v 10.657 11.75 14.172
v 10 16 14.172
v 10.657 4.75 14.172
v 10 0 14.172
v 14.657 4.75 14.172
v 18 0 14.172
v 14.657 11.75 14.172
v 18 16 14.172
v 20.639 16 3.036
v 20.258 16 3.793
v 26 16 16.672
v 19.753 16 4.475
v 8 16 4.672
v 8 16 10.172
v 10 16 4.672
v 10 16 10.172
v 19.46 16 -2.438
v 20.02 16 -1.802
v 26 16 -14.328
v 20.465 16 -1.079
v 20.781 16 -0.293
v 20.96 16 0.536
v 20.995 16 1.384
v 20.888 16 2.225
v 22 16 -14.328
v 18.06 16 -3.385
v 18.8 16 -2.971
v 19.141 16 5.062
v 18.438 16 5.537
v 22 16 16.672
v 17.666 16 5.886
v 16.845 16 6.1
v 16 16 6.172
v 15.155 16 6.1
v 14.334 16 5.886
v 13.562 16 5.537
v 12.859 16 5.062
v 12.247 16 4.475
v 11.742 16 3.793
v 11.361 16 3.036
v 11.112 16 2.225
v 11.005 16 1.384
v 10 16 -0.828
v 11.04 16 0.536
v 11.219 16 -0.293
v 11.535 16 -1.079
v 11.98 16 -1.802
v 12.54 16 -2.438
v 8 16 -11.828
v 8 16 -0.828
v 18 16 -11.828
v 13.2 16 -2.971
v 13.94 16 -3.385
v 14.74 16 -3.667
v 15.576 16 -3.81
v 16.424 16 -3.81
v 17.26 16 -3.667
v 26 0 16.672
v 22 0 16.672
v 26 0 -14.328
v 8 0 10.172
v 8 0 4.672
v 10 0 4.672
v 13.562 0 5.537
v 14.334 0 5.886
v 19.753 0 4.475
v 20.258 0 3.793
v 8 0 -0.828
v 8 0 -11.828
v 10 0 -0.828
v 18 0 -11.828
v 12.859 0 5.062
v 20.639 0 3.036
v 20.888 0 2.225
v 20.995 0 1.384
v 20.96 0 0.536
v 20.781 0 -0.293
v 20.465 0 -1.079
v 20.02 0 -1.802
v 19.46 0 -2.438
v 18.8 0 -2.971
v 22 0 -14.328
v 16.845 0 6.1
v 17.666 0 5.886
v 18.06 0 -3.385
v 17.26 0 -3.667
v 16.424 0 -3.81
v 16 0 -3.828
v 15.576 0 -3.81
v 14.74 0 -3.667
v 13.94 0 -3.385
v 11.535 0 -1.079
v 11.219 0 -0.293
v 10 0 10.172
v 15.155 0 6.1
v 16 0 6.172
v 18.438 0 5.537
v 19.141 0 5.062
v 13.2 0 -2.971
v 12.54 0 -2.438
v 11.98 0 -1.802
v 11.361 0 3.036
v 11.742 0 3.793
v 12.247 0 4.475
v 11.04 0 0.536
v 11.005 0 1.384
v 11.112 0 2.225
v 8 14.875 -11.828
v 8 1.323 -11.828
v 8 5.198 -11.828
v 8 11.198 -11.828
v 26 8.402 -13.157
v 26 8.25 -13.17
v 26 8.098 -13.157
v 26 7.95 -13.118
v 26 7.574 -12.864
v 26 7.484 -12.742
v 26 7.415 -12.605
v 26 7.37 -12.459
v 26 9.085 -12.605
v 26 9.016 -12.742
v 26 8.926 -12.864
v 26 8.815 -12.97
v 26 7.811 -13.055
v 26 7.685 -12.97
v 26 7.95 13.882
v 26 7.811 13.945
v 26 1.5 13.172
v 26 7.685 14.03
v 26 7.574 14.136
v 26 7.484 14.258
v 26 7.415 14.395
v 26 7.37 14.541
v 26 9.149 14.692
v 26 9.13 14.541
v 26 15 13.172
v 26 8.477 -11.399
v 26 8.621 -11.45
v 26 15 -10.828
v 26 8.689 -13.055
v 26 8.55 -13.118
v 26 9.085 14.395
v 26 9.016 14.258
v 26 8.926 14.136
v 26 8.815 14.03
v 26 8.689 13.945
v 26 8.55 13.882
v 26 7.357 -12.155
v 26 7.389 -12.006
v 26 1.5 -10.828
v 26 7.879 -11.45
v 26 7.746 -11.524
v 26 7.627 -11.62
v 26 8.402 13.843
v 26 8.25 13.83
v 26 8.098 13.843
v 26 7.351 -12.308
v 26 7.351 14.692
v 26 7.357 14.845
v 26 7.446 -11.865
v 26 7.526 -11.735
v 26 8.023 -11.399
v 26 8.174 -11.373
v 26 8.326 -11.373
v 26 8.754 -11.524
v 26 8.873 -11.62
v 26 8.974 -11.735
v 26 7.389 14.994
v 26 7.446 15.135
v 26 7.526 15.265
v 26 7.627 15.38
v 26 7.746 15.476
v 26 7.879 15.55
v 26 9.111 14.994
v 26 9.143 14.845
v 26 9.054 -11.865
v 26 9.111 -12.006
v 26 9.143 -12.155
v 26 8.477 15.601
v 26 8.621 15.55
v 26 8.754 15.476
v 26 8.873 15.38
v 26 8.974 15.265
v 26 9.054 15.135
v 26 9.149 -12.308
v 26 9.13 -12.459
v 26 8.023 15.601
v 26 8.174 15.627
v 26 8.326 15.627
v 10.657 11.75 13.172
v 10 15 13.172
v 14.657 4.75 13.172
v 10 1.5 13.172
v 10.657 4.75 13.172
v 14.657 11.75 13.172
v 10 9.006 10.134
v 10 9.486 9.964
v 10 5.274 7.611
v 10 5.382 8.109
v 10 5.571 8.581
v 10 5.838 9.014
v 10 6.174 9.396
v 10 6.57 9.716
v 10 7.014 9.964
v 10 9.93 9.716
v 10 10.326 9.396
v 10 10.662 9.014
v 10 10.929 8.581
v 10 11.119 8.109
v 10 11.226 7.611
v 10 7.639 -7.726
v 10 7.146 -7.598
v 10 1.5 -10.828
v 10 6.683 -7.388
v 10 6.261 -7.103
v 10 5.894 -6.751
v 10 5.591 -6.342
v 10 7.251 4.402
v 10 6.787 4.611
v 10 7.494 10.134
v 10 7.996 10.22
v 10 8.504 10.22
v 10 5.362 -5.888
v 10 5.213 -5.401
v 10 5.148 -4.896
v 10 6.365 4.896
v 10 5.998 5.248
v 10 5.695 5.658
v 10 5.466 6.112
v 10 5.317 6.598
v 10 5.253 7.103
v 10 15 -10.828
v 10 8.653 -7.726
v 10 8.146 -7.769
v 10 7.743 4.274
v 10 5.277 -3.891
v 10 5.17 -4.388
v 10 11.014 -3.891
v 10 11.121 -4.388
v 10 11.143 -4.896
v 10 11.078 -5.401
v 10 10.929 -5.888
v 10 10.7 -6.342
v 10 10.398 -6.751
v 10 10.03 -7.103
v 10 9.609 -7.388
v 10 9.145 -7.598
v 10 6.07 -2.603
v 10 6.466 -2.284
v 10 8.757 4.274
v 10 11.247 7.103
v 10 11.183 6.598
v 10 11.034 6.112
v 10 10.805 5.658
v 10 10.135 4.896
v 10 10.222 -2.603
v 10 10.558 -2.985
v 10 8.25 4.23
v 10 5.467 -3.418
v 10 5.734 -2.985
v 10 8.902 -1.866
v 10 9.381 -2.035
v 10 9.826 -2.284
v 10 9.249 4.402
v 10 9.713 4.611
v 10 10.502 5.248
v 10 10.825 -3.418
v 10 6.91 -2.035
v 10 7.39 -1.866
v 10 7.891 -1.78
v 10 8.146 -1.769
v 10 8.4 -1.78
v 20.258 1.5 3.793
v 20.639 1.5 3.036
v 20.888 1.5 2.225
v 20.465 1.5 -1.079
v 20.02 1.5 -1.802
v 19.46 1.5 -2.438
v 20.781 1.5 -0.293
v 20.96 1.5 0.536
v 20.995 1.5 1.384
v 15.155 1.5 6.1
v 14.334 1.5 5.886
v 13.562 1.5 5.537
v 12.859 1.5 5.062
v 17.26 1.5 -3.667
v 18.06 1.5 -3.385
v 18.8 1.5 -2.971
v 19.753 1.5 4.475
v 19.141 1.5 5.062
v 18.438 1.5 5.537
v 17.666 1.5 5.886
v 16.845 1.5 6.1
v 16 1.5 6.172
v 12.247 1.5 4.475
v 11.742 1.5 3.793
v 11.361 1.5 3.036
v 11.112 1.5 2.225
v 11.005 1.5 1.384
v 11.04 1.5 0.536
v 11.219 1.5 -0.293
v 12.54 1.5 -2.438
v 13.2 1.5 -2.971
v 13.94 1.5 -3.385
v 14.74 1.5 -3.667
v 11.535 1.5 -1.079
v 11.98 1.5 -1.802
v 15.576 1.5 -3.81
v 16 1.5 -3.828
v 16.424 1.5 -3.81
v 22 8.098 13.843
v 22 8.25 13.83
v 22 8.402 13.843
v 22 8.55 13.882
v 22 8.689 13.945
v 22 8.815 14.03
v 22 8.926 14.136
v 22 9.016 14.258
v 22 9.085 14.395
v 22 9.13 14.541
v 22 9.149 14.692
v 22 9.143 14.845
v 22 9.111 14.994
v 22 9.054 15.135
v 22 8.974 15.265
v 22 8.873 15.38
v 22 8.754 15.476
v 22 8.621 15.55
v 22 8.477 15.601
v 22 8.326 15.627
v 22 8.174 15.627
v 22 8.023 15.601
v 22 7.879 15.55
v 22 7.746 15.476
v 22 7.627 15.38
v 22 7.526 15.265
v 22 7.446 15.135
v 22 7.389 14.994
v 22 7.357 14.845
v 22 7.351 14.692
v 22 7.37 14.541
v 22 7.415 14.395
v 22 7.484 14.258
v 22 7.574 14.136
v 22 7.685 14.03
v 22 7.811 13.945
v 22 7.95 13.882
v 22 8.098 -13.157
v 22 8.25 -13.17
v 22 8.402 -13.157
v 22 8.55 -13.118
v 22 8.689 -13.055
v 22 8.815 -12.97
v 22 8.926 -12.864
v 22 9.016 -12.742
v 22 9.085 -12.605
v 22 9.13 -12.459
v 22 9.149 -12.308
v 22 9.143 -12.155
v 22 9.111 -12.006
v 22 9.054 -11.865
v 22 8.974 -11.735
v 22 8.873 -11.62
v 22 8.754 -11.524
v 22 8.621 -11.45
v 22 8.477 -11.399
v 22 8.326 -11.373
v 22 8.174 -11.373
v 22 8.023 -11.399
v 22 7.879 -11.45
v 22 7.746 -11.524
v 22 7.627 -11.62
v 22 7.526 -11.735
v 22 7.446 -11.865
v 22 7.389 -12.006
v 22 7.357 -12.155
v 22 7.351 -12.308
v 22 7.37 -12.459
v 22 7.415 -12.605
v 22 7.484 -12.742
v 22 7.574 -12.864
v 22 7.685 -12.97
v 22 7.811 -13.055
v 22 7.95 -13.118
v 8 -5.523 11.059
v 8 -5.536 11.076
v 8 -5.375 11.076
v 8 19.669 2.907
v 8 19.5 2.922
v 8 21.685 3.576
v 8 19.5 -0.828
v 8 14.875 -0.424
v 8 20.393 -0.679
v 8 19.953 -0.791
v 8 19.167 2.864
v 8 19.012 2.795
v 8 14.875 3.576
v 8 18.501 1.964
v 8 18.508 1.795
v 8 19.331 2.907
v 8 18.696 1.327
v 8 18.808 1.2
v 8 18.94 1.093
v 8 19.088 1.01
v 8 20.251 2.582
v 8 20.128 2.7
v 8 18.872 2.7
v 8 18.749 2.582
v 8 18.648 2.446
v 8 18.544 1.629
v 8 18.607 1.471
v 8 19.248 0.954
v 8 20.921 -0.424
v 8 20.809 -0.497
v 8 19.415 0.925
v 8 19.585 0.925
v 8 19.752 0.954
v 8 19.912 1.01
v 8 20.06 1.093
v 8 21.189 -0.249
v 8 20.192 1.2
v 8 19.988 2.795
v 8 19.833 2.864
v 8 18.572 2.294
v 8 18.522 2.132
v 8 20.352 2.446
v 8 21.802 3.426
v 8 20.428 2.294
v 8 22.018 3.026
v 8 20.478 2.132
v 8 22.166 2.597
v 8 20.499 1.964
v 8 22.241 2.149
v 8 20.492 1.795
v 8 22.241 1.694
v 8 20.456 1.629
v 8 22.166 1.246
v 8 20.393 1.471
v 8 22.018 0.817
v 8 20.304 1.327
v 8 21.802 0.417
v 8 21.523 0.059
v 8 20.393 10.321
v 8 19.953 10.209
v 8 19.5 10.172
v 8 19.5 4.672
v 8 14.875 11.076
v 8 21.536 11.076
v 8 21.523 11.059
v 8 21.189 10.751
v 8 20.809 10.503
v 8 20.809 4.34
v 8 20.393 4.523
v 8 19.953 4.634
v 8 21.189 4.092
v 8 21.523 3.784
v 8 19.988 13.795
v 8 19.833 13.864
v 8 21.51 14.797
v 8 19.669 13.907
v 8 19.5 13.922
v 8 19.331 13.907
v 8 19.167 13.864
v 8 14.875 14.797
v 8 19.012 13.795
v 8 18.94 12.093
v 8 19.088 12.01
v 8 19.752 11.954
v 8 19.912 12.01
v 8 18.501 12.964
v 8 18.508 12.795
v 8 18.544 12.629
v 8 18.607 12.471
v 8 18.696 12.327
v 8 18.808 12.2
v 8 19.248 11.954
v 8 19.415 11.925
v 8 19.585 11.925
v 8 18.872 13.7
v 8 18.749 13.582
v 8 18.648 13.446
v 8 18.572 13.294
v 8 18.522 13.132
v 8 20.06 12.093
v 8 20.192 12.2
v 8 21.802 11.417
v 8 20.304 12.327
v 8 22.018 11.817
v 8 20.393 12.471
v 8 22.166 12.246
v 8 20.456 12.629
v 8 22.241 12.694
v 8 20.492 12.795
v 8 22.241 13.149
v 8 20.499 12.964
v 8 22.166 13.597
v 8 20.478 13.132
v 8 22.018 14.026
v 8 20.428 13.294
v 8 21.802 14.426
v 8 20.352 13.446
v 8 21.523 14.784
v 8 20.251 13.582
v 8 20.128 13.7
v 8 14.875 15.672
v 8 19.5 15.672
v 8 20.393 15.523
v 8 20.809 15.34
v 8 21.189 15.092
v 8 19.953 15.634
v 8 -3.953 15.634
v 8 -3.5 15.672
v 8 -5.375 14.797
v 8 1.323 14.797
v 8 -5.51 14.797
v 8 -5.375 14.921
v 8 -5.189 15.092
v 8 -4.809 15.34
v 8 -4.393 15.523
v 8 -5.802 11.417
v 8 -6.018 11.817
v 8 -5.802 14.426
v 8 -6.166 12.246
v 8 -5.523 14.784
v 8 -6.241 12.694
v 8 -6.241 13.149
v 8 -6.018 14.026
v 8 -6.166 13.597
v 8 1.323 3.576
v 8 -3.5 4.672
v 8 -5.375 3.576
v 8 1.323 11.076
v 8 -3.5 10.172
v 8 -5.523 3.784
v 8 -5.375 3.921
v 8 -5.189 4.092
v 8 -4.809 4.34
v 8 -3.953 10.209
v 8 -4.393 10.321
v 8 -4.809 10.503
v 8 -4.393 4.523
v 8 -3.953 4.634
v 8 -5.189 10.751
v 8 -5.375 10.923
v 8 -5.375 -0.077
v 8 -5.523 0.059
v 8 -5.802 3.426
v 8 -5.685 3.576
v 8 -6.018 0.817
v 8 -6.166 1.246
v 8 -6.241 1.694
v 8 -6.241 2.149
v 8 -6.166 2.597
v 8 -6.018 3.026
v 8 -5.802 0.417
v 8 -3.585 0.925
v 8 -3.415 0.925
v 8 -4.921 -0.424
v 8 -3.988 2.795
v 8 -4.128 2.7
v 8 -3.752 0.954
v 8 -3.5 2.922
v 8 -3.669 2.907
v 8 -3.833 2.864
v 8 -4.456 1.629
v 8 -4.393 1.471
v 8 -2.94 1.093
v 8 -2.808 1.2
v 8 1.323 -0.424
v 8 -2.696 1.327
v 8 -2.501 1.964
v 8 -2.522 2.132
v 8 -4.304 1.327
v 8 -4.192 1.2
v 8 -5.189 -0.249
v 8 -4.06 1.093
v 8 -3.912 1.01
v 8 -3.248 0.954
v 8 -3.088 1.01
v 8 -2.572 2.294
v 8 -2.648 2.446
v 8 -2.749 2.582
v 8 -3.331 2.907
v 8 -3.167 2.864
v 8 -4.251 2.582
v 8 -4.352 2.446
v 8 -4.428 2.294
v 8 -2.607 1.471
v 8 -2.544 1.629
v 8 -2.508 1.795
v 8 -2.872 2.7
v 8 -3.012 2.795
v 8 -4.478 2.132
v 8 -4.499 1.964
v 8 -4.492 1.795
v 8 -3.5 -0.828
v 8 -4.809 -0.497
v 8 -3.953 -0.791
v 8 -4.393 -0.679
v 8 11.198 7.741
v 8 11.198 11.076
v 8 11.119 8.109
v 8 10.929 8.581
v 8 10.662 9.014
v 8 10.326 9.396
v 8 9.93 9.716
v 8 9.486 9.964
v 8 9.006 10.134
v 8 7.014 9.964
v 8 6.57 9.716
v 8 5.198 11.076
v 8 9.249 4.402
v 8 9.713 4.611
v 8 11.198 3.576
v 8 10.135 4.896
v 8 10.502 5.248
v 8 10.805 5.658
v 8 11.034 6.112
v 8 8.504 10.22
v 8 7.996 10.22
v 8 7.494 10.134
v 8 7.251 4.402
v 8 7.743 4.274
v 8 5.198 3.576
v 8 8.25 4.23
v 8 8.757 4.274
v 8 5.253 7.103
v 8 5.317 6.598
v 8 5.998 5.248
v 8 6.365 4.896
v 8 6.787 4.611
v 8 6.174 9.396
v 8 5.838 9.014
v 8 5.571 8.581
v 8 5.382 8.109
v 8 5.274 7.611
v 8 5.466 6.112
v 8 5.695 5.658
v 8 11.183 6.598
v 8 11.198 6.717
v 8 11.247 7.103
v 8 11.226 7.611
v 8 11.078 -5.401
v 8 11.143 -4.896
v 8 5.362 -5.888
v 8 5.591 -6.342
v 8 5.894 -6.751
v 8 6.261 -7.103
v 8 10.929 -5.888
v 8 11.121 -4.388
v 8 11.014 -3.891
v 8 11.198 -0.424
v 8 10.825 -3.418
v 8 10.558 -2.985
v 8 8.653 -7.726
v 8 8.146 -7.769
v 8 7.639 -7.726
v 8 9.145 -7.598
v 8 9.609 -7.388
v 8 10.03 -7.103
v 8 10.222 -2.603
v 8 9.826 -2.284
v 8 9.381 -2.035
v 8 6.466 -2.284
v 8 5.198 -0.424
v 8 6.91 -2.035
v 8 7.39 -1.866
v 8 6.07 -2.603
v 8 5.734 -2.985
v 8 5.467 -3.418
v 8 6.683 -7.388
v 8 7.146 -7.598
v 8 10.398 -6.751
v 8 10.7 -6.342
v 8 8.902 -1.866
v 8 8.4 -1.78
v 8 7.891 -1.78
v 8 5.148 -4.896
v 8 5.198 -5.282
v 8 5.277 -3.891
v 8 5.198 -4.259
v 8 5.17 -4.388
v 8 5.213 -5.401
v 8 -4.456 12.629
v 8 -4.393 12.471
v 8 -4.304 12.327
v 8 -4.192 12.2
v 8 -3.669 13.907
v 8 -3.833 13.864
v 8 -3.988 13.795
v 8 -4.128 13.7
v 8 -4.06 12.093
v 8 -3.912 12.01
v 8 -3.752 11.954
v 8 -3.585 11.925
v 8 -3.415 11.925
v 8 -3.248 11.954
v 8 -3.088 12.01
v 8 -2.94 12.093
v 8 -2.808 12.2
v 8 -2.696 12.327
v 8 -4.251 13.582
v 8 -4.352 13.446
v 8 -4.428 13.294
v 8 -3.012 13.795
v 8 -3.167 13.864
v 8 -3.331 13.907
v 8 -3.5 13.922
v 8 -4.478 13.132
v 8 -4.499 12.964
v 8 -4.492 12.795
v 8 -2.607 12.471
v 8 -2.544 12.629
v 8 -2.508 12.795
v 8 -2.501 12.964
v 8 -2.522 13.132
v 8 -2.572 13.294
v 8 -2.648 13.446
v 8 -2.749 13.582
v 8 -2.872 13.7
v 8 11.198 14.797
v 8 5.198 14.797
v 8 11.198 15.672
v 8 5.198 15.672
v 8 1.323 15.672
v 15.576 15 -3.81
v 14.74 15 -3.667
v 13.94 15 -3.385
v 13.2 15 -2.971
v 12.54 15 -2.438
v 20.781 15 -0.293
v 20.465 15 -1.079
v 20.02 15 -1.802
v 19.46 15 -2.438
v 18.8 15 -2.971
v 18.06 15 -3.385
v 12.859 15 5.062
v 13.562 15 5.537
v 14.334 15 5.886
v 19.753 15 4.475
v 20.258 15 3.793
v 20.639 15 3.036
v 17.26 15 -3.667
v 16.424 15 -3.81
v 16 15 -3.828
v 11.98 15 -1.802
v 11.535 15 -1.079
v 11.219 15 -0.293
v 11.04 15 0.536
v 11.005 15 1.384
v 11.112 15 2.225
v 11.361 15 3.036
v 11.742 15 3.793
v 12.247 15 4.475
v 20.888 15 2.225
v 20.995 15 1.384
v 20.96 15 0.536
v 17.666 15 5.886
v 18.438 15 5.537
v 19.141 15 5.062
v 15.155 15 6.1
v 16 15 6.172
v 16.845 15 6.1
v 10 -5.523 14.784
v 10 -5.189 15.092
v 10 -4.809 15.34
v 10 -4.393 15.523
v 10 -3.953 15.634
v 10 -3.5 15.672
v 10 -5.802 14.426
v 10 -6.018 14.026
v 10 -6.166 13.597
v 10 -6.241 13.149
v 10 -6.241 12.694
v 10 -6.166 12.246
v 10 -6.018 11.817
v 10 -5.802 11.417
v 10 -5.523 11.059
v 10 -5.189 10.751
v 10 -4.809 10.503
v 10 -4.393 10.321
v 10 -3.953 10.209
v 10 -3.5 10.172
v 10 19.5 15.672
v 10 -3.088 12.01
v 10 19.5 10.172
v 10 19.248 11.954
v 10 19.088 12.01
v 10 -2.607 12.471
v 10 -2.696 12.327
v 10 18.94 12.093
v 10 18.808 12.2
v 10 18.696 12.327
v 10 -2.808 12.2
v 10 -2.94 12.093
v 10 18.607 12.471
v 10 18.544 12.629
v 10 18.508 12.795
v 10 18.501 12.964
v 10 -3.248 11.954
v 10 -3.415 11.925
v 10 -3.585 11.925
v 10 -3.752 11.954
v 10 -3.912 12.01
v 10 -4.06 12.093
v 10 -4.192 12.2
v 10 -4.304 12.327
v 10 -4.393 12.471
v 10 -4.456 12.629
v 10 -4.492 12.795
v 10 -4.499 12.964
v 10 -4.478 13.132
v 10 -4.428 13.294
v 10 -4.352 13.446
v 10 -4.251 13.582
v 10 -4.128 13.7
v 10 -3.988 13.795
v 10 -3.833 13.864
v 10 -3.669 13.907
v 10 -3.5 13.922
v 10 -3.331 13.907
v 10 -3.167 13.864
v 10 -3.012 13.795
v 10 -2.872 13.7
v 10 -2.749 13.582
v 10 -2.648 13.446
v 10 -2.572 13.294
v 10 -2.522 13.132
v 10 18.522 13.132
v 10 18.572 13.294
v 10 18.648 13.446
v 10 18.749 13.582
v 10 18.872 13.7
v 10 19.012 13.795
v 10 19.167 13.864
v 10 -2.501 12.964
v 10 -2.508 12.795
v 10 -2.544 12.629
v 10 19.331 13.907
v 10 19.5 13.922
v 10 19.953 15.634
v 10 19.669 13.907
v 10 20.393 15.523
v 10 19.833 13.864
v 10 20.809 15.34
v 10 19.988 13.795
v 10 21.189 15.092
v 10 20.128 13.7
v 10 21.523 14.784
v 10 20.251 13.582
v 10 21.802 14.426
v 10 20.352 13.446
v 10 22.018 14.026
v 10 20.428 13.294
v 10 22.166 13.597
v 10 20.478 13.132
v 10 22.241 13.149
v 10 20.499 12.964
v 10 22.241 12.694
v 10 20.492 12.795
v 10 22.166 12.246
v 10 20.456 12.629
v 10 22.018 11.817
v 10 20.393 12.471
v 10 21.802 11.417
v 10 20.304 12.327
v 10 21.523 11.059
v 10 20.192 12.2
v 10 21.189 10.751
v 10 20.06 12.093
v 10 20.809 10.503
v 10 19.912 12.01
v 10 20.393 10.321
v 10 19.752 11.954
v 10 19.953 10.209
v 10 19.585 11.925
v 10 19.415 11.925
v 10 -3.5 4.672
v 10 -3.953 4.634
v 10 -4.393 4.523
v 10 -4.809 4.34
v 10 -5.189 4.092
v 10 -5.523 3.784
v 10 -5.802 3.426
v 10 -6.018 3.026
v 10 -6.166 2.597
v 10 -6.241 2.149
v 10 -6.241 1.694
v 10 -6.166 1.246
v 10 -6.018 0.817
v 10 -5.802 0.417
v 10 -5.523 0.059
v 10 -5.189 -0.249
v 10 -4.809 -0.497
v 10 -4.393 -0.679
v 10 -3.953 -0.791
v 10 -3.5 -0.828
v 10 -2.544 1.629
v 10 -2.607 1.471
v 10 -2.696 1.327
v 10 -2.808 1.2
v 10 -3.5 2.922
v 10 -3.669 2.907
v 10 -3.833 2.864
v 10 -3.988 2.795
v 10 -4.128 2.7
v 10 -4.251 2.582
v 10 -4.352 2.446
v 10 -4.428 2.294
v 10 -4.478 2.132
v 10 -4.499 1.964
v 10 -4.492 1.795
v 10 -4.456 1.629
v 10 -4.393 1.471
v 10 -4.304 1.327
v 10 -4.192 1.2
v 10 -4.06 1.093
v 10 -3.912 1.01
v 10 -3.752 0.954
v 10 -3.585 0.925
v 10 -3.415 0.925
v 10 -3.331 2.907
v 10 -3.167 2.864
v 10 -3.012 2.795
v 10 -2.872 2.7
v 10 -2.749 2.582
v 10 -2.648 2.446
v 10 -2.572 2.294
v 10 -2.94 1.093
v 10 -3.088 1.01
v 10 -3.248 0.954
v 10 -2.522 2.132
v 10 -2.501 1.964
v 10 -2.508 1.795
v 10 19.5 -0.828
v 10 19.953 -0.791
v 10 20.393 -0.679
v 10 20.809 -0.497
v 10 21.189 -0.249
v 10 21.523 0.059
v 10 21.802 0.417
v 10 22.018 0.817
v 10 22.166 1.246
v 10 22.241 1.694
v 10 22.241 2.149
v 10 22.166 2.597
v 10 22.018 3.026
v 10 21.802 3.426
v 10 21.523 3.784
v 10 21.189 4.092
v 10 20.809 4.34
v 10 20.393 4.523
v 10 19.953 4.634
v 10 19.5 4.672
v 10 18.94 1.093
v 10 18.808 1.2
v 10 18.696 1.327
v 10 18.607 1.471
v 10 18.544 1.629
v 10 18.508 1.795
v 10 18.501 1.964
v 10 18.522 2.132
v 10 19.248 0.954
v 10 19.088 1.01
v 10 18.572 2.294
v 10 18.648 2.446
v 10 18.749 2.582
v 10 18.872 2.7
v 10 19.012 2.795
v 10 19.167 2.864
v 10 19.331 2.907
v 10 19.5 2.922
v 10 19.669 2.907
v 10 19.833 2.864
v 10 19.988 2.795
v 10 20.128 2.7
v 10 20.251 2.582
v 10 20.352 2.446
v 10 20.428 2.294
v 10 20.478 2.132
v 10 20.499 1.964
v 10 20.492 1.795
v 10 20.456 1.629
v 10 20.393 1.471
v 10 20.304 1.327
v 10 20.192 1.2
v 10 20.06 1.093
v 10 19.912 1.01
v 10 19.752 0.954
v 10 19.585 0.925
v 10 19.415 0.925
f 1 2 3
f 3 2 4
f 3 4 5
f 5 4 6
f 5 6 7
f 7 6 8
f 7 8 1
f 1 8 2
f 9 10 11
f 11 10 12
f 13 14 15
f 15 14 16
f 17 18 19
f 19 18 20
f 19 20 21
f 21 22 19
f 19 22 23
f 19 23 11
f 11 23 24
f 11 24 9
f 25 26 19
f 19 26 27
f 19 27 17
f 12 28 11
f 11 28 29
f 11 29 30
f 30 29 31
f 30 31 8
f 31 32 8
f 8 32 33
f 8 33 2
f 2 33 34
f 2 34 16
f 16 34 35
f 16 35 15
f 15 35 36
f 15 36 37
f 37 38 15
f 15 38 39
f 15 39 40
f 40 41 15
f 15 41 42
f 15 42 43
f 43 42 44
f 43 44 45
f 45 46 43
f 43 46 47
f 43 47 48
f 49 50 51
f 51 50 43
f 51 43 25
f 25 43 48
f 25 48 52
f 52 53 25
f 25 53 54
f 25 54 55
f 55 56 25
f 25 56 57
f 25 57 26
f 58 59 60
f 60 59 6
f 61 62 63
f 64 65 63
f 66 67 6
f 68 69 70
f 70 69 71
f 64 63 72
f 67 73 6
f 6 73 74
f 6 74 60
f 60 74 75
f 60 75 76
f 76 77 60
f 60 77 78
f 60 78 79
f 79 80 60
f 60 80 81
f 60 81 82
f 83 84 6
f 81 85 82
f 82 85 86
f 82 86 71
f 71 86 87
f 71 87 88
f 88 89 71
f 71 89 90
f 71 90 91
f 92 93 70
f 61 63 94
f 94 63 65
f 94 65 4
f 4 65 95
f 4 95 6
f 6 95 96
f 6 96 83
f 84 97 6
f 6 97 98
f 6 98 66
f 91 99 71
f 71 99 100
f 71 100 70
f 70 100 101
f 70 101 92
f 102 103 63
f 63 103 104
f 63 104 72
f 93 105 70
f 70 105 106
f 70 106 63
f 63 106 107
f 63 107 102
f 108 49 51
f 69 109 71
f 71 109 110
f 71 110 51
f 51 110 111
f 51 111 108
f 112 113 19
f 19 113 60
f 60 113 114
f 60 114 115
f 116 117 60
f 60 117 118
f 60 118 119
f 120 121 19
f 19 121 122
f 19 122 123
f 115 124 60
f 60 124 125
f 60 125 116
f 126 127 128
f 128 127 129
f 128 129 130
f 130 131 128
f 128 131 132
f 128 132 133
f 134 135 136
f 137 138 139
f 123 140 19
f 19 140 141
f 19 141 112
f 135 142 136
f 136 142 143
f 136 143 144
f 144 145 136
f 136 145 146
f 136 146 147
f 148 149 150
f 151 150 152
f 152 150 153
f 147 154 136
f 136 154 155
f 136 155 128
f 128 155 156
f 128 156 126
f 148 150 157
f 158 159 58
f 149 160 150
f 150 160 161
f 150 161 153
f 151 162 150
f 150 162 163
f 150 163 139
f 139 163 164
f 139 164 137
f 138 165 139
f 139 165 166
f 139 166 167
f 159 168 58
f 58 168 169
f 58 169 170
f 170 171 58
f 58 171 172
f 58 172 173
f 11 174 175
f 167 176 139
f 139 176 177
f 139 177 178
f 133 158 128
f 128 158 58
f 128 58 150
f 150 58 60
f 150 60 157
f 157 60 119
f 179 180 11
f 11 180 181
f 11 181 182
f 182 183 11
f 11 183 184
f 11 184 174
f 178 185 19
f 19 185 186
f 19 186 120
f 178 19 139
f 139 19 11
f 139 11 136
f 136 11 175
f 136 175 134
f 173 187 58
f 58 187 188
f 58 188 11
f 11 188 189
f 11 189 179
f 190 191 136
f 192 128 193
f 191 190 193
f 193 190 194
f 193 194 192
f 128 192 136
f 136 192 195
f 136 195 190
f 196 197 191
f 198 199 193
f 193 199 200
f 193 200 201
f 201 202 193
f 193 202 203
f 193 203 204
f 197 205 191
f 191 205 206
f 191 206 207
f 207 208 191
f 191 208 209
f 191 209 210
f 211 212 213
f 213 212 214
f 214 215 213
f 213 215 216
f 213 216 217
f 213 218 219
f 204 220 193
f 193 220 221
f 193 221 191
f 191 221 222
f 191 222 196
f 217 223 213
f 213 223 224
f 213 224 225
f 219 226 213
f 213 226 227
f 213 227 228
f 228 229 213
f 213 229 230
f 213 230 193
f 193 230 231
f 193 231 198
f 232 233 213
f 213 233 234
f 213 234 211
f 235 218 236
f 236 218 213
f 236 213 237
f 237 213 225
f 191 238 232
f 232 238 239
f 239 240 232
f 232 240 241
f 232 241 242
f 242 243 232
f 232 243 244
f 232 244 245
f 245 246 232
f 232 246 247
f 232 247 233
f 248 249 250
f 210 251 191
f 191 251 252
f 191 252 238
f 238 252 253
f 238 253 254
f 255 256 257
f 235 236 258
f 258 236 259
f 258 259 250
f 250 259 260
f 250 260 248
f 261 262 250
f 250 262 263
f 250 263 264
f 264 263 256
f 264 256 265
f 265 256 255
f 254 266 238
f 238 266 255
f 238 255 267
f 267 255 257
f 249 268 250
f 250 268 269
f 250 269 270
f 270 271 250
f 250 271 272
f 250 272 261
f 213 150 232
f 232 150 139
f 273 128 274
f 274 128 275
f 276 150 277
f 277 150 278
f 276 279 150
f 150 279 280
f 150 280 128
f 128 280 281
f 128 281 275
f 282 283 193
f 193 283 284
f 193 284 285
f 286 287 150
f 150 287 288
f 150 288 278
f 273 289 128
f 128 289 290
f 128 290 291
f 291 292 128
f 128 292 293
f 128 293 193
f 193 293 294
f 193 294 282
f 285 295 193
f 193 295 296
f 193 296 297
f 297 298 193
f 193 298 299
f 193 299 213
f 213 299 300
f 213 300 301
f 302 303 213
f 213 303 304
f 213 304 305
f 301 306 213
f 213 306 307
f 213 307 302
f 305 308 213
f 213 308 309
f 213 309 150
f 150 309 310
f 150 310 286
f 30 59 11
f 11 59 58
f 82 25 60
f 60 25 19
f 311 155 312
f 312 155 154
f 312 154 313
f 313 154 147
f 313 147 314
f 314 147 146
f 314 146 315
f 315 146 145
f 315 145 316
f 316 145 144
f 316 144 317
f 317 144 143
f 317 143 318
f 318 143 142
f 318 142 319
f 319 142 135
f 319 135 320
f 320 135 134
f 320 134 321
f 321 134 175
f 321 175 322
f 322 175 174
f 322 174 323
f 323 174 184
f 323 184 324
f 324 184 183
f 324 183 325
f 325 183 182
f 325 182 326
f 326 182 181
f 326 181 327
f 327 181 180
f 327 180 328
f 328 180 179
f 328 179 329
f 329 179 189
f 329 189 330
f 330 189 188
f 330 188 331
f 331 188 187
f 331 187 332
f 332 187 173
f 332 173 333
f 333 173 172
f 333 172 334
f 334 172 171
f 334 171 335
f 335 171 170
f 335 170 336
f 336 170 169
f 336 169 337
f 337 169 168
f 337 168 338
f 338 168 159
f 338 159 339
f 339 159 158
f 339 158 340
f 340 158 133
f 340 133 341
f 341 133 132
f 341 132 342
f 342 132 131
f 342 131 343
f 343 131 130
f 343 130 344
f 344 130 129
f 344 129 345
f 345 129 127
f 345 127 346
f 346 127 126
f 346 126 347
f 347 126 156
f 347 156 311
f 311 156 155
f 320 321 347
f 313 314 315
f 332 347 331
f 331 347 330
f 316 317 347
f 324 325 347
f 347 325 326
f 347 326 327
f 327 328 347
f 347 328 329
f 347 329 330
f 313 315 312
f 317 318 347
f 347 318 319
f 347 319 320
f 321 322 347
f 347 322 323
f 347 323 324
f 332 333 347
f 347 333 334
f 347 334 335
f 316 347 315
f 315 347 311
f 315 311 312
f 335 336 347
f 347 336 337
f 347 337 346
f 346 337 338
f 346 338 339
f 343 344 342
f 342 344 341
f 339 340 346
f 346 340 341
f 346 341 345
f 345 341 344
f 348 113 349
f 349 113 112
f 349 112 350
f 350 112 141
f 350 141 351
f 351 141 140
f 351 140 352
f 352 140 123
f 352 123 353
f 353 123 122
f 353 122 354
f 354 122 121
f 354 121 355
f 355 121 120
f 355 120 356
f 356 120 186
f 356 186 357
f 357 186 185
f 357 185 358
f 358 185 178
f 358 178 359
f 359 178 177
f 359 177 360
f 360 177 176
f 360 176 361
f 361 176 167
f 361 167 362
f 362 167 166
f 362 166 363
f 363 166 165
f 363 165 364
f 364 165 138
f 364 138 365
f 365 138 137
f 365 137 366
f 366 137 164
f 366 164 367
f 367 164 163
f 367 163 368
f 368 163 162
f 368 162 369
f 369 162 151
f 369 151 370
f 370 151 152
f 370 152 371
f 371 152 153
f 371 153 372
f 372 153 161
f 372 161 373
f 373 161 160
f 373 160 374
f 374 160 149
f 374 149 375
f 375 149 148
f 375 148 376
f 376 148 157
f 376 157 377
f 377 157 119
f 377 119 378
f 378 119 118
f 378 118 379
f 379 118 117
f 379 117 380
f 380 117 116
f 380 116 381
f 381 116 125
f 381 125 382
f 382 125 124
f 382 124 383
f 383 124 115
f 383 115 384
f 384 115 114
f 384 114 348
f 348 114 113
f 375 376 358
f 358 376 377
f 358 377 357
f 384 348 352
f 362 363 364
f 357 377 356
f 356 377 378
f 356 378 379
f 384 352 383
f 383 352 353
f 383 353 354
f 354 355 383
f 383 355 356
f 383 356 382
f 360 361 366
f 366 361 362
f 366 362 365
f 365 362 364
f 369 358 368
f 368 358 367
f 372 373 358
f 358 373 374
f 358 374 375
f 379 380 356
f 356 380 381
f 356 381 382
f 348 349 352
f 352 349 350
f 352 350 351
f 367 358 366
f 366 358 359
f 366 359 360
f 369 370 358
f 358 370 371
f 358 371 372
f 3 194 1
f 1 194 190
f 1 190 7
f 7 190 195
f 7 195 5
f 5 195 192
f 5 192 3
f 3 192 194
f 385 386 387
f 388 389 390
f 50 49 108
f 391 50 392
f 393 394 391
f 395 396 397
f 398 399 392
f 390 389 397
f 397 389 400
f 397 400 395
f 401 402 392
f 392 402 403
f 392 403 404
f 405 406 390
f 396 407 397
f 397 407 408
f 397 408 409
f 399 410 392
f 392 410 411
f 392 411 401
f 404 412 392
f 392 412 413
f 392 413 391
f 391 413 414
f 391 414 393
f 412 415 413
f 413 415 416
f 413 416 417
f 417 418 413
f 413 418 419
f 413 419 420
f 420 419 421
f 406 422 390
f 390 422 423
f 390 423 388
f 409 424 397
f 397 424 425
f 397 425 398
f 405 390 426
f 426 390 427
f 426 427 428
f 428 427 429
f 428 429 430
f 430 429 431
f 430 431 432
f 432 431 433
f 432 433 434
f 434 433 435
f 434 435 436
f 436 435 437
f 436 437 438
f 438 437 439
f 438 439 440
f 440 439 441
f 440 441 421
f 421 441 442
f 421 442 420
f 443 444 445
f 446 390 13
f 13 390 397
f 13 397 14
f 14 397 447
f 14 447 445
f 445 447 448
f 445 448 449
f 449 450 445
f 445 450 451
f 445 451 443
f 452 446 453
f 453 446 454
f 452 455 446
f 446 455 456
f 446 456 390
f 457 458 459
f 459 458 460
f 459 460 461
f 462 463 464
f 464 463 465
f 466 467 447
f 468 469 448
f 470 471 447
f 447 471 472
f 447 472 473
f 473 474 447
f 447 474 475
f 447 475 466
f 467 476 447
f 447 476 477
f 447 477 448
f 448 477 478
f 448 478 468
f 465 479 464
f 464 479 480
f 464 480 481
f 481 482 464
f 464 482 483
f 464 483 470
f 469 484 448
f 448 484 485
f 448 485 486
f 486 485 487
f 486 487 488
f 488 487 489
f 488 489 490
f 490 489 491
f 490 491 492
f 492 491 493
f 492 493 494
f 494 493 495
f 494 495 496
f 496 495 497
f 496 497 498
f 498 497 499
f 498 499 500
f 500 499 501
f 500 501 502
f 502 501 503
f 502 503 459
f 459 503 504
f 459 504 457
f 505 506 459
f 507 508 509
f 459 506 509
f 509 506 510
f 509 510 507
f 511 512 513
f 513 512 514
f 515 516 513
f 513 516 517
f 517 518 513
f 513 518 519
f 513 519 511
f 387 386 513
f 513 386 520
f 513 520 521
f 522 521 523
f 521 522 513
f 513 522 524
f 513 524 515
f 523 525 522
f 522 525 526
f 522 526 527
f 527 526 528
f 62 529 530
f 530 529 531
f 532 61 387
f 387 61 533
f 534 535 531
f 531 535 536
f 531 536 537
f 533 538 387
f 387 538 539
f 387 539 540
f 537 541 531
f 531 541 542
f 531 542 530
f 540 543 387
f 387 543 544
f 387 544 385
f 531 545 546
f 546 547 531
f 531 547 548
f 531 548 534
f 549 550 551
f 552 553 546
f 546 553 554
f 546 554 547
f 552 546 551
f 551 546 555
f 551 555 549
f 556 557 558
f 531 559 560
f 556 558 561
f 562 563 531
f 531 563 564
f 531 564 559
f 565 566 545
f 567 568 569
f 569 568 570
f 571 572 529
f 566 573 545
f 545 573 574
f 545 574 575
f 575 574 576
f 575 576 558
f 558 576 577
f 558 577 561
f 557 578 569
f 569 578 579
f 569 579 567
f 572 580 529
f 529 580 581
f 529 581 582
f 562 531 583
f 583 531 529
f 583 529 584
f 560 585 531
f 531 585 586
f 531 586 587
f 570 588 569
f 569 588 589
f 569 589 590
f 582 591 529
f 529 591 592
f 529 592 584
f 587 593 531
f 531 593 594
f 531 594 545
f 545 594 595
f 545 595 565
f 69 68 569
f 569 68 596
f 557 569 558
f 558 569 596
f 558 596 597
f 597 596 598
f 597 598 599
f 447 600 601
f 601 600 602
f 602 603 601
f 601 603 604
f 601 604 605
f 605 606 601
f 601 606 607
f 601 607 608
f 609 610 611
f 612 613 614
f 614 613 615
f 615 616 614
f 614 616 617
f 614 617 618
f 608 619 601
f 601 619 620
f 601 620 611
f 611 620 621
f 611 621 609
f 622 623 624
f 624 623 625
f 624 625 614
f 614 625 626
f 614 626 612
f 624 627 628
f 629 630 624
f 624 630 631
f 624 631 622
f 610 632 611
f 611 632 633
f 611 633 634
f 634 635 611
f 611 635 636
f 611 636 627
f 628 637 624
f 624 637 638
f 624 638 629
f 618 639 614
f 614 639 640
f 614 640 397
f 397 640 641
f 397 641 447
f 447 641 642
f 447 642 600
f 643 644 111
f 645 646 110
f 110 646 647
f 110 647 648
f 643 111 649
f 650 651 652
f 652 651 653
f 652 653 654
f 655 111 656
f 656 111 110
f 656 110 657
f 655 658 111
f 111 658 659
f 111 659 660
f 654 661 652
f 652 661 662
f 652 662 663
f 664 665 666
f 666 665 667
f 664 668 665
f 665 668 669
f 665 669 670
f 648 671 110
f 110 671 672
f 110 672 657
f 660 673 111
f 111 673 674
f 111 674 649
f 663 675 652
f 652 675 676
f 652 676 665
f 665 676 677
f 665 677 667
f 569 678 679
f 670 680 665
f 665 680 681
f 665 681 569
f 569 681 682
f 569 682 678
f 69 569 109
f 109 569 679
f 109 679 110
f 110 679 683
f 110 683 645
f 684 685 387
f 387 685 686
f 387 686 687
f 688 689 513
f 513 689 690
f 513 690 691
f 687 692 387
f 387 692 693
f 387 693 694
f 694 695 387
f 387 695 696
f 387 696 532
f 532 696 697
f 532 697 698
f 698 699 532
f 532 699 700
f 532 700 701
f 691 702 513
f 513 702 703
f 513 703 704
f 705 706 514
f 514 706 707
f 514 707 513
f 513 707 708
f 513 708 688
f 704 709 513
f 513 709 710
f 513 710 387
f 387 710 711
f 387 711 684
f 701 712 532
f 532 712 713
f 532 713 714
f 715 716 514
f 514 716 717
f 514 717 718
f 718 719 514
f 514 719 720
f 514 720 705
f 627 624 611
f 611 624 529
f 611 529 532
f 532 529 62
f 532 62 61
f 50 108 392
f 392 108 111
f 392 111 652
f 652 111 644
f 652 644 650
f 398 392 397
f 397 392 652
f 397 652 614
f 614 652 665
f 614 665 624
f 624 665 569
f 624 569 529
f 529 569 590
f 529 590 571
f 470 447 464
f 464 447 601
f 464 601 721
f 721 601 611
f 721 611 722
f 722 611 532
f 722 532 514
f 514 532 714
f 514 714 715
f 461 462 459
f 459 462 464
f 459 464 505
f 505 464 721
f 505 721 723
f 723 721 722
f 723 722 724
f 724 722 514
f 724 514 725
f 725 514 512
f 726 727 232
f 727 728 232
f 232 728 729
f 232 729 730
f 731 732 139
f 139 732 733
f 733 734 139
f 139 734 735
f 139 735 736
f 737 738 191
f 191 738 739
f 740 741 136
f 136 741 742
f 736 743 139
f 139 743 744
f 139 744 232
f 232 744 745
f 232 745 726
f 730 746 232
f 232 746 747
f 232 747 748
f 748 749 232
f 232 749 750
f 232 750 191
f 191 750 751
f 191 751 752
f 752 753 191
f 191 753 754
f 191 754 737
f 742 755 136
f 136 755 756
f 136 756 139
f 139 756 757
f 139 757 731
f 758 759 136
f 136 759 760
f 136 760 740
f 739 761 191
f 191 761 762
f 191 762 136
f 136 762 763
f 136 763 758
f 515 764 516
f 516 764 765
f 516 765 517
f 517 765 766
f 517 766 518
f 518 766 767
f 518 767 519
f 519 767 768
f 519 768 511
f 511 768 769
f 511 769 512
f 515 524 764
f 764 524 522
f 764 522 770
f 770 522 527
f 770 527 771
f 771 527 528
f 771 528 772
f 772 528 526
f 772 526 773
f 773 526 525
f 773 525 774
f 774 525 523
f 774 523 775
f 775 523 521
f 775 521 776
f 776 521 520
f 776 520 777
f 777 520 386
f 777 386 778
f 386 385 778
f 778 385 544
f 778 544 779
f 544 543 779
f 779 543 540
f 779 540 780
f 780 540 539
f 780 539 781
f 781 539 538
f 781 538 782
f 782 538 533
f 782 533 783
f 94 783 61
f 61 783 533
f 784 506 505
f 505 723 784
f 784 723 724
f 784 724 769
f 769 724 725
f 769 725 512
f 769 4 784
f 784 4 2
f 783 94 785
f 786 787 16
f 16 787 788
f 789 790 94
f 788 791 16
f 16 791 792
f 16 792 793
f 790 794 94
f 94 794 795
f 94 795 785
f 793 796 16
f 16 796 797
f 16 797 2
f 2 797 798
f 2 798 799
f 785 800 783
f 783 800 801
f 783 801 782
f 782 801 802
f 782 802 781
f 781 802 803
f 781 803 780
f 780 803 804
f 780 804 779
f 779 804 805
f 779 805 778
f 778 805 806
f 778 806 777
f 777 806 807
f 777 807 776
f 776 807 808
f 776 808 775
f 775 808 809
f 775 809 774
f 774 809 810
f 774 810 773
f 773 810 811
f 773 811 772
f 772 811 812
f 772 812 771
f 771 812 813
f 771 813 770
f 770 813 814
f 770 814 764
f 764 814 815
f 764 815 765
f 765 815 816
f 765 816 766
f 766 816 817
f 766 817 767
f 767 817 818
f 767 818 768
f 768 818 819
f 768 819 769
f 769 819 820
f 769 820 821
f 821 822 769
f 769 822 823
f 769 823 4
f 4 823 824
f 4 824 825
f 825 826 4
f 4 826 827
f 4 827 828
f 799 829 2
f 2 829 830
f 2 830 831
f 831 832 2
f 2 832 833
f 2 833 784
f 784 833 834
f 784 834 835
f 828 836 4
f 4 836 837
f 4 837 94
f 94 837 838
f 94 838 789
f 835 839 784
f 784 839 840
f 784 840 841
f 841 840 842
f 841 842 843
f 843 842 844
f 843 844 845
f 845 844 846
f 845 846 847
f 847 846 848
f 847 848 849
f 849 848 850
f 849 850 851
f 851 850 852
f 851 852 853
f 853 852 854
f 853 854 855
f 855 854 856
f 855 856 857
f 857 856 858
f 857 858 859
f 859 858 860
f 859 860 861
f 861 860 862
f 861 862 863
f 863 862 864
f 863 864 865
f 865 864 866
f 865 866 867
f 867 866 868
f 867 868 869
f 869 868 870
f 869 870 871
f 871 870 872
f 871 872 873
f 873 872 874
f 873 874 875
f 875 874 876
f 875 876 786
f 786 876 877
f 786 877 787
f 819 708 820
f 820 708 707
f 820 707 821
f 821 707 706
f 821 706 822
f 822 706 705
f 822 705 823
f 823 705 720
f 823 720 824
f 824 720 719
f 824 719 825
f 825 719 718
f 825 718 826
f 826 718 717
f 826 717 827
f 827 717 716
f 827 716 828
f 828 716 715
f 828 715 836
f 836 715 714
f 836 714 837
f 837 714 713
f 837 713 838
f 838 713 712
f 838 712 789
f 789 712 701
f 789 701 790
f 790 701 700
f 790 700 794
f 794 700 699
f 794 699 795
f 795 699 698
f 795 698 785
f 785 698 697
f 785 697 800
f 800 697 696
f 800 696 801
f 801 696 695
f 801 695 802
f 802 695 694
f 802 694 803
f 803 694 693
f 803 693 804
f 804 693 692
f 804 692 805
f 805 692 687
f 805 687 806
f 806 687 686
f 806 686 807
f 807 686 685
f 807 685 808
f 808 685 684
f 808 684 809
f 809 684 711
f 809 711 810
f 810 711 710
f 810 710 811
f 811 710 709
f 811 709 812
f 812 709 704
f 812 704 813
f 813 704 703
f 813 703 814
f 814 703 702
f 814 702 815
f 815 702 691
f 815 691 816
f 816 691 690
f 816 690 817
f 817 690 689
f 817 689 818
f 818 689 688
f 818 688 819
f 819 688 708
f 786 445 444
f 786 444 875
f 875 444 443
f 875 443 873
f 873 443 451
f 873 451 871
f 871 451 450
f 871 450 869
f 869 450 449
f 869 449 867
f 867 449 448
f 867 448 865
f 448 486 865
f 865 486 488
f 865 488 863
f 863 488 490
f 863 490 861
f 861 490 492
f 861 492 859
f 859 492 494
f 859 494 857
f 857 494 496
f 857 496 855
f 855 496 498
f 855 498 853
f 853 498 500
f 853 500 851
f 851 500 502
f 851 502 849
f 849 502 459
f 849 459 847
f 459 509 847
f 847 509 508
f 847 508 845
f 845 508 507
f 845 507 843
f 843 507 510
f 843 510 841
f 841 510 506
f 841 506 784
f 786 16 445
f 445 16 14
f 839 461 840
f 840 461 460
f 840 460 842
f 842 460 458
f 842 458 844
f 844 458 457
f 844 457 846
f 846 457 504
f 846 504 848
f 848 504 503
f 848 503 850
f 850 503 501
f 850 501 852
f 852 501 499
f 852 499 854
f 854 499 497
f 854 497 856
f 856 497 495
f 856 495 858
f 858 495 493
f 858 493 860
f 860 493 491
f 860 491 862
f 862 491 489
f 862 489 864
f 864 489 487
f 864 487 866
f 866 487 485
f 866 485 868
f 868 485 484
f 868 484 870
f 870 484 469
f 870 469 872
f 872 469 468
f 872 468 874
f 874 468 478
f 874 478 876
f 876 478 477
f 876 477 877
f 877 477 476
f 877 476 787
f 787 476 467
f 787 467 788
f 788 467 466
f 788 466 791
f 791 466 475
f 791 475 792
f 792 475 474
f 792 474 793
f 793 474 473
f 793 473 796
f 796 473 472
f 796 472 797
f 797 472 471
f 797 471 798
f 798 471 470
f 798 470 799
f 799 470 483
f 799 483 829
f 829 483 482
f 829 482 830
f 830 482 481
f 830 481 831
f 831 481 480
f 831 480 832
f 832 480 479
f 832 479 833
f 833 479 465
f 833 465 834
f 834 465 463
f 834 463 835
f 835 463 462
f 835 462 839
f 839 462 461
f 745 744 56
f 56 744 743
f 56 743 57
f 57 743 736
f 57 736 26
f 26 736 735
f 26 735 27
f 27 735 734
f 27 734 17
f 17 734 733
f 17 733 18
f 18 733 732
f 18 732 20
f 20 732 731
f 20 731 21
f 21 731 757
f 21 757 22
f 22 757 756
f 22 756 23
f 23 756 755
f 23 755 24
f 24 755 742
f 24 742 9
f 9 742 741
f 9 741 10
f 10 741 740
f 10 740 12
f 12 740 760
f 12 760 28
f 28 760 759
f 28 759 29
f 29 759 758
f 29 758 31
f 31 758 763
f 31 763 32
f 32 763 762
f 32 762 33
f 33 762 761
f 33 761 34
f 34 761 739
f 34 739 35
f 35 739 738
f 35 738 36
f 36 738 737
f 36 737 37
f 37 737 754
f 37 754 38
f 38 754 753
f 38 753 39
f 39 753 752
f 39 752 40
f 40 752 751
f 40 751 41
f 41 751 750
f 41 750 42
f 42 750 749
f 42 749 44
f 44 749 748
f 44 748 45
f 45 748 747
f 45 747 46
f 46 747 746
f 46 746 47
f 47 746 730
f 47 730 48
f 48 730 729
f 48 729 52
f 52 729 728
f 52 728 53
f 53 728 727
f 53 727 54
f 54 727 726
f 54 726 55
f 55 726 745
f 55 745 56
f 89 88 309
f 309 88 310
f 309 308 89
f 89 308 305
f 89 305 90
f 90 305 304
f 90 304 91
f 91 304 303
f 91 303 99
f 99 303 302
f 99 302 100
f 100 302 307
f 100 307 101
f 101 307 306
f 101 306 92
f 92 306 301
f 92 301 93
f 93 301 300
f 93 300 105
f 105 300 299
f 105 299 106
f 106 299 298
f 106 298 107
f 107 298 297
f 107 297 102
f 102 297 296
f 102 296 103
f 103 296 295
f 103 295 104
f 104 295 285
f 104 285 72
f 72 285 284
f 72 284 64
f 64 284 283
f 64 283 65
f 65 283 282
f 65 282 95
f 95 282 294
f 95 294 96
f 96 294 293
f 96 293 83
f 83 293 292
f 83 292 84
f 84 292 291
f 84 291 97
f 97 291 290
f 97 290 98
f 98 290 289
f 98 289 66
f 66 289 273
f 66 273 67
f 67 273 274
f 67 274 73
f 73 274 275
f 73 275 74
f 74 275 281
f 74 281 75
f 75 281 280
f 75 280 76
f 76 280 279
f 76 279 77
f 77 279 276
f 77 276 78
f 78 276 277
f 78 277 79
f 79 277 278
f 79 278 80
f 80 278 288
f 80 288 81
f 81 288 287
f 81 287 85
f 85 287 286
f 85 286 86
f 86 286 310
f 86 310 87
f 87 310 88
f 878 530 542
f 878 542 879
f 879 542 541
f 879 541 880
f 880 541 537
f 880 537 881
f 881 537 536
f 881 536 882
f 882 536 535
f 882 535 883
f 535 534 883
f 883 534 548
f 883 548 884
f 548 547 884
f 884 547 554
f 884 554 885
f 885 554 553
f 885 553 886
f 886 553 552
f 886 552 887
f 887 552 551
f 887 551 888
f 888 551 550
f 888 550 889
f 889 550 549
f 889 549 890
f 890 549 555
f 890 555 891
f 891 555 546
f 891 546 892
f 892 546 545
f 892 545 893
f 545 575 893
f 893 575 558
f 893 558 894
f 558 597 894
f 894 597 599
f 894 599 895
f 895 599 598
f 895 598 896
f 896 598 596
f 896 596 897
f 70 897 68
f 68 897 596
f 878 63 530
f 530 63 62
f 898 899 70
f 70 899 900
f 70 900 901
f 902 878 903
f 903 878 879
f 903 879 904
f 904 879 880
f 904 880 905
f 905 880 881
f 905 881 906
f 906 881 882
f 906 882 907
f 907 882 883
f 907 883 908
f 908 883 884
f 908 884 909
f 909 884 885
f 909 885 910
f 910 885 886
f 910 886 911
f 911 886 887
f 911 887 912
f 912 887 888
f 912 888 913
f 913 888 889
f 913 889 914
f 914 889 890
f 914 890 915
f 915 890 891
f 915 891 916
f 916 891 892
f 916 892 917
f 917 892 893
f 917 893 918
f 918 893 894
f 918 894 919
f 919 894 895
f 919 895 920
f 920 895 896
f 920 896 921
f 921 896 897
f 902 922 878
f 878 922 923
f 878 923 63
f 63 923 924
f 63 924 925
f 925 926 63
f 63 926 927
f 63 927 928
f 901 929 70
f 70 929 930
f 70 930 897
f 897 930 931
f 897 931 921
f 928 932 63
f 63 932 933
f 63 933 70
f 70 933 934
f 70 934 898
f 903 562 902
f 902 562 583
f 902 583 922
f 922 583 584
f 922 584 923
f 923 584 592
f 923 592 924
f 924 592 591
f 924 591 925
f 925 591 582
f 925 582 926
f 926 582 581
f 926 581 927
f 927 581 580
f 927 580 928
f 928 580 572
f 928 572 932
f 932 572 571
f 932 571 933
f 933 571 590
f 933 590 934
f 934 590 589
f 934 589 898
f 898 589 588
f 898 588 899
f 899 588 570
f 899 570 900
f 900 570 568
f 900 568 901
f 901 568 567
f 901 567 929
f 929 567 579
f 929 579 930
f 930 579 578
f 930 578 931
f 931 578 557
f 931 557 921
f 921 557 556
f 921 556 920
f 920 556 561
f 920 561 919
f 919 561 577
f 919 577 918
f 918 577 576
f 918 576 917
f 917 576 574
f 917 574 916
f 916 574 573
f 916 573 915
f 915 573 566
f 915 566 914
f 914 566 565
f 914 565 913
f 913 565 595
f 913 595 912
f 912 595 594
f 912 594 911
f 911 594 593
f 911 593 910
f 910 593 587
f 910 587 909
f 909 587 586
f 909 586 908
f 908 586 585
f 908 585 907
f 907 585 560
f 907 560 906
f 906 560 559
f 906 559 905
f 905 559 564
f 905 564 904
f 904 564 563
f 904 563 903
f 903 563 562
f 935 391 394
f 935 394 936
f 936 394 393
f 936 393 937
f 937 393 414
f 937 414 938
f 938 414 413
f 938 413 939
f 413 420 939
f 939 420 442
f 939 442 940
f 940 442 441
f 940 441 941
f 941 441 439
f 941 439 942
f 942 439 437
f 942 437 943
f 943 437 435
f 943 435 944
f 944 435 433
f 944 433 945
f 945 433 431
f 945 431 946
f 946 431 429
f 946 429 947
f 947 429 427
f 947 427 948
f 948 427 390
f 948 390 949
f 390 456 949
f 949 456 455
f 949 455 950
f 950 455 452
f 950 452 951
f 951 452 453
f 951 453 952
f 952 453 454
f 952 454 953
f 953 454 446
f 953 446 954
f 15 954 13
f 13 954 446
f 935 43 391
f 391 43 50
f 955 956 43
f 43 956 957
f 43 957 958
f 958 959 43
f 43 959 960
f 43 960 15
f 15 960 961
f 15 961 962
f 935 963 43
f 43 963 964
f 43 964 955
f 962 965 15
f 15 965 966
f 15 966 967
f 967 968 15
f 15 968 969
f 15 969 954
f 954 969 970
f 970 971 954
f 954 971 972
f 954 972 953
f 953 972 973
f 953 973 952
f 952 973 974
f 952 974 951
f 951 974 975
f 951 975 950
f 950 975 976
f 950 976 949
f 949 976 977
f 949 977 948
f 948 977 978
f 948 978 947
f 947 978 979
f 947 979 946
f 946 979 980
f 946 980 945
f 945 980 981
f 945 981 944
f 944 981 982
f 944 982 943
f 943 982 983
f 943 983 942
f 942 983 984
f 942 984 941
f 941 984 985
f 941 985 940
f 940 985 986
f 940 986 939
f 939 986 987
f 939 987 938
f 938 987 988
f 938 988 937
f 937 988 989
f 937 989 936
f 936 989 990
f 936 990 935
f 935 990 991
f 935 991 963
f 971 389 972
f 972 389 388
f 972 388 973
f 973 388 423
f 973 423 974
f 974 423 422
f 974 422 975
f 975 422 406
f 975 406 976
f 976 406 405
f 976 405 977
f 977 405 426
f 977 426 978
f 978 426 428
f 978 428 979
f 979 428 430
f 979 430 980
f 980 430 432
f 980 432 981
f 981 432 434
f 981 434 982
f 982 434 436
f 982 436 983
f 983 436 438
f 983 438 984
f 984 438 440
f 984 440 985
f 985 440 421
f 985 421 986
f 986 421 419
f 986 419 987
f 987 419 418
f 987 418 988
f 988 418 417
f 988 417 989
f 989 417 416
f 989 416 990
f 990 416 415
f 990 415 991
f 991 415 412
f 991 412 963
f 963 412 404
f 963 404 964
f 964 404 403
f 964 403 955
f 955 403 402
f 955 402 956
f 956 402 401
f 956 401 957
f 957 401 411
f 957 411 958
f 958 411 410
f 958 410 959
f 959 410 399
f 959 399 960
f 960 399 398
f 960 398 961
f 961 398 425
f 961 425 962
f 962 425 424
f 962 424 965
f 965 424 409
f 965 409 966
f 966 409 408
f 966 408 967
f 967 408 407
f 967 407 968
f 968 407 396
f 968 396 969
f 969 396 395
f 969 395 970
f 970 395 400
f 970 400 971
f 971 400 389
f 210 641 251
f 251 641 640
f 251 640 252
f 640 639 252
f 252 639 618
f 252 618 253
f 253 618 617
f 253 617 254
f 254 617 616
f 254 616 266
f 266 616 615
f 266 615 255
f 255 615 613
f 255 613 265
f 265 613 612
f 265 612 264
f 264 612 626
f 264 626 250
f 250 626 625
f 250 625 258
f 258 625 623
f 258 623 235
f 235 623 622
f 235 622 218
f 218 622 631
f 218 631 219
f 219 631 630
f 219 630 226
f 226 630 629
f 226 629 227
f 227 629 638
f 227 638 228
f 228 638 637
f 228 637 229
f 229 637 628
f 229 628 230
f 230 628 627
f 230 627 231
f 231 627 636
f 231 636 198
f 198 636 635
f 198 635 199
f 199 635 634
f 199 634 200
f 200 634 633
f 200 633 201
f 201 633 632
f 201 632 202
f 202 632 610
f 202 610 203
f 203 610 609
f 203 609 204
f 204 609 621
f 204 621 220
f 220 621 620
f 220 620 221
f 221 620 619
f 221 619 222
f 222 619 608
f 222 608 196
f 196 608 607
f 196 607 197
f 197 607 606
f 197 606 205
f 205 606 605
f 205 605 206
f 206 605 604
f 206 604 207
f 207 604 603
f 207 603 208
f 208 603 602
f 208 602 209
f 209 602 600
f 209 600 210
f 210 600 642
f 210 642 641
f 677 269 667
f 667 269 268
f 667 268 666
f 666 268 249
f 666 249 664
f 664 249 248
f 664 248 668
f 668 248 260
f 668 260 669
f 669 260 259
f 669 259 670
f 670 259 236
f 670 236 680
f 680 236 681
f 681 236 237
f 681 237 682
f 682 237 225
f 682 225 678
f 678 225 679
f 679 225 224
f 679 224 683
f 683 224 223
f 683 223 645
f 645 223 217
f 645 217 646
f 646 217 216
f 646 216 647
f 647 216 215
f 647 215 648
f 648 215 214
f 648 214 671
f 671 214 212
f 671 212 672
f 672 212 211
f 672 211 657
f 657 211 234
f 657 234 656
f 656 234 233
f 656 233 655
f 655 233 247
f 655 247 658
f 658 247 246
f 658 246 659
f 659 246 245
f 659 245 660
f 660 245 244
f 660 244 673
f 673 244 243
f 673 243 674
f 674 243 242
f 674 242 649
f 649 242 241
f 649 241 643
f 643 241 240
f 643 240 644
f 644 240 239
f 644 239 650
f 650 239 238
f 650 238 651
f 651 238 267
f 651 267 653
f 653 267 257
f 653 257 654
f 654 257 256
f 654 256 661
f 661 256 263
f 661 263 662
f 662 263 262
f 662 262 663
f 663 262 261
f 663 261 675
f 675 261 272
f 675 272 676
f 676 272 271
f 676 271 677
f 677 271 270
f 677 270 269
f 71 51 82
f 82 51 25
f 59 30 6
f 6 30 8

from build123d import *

# Parameters (mm, degrees)
P_IDAT_VYSUNUT_M1_DEPTH   = 15
P_IDAT_VYSUNUT_M2_DEPTH   = 15
SKICA10_W                 = 16
SKICA10_H                 = 24
ODEBRAT_VYSUNUT_M7_DEPTH  = 13.5
SKICA11_W                 = 2.5
SKICA11_H                 = 15
P_IDAT_VYSUNUT_M3_DEPTH   = 4
SKICA12_R                 = 0.9
ODEBRAT_VYSUNUT_M8_DEPTH  = 4
SKICA13_W                 = 4
SKICA13_H                 = 7
ODEBRAT_VYSUNUT_M9_DEPTH  = 4
SKICA17_W                 = 38.25
SKICA17_H                 = 32.5
ODEBRAT_VYSUNUT_M10_DEPTH = 16
P_IDAT_VYSUNUT_M4_DEPTH   = 1
SKICA20_R                 = 1
P_IDAT_VYSUNUT_M5_DEPTH   = 2
SKICA21_R                 = 5
ODEBRAT_VYSUNUT_M11_DEPTH = 22
LINPOLE1_COUNT            = 2
LINPOLE1_PITCH            = 11
SKICA22_R                 = 3
ODEBRAT_VYSUNUT_M12_DEPTH = 5
P_IDAT_VYSUNUT_M6_DEPTH   = 16
SKICA24_W                 = 2
SKICA24_H                 = 1.5
P_IDAT_VYSUNUT_M7_DEPTH   = 16


with BuildPart() as part:
    # Skica1 → Přidat vysunutím1 (new body)
    with BuildSketch(Plane(origin=(0, 0, 0), x_dir=(1, 0, 0), z_dir=(0, 1, 0))):
        Polygon((0, -11), (0, 11), (-3.25, 14.25), (-30.25, 14.25), (-30.25, 16.25), (-2.421572875, 16.25), (2, 11.828427125), (2, -11.828427125), (-2.421572875, -16.25), (-30.25, -16.25), (-30.25, -14.25), (-3.25, -14.25), align=None)
    extrude(amount=P_IDAT_VYSUNUT_M1_DEPTH)

    # Skica8 → Přidat vysunutím2 (add)
    with BuildSketch(Plane.XZ):
        Polygon((-0.343145751, 14.171572875), (26, 14.171572875), (26, -11.828427125), (2, -11.828427125), (2, 11.828427125), align=None)
    extrude(amount=-P_IDAT_VYSUNUT_M2_DEPTH)

    # Skica10 → Odebrat vysunutím7 (cut)
    with BuildSketch(Plane(origin=(0, 15, 0), x_dir=(1, 0, 0), z_dir=(0, 1, 0))):
        with Locations((18, -1.171572875)):
            Rectangle(SKICA10_W, SKICA10_H)
    extrude(amount=-ODEBRAT_VYSUNUT_M7_DEPTH, mode=Mode.SUBTRACT)

    # Skica11 → Přidat vysunutím3 (add)
    with BuildSketch(Plane(origin=(26, 0, 0), x_dir=(0, 0, -1), z_dir=(1, 0, 0))):
        with Locations((-15.421572875, 7.5)):
            Rectangle(SKICA11_W, SKICA11_H)
        with Locations((13.078427125, 7.5)):
            Rectangle(SKICA11_W, SKICA11_H)
    extrude(amount=-P_IDAT_VYSUNUT_M3_DEPTH)

    # Skica12 → Odebrat vysunutím8 (cut)
    with BuildSketch(Plane(origin=(26, 0, 0), x_dir=(0, 0, -1), z_dir=(1, 0, 0))):
        with Locations((-14.730217843, 8.25)):
            Circle(SKICA12_R)
        with Locations((12.269782157, 8.25)):
            Circle(SKICA12_R)
    extrude(amount=-ODEBRAT_VYSUNUT_M8_DEPTH, mode=Mode.SUBTRACT)

    # Skica13 → Odebrat vysunutím9 (cut)
    with BuildSketch(Plane.XY.offset(14.171572875)):
        with Locations((12.656854249, 8.25)):
            Rectangle(SKICA13_W, SKICA13_H)
    extrude(amount=-ODEBRAT_VYSUNUT_M9_DEPTH, mode=Mode.SUBTRACT)

    # Skica17 → Odebrat vysunutím10 (cut, through all)
    with BuildSketch(Plane(origin=(0, 15, 0), x_dir=(1, 0, 0), z_dir=(0, 1, 0))):
        with Locations((-11.125, 0)):
            Rectangle(SKICA17_W, SKICA17_H)
    extrude(amount=-ODEBRAT_VYSUNUT_M10_DEPTH, mode=Mode.SUBTRACT)

    # Skica19 → Přidat vysunutím4 (add)
    with BuildSketch(Plane(origin=(0, 15, 0), x_dir=(1, 0, 0), z_dir=(0, 1, 0))):
        Polygon((8, 11.828427125), (22, 11.828427125), (22, 14.328427125), (26, 14.328427125), (26, -16.671572875), (22, -16.671572875), (22, -14.171572875), (8, -14.171572875), align=None)
    extrude(amount=P_IDAT_VYSUNUT_M4_DEPTH)

    # Skica20 → Přidat vysunutím5 (add)
    with BuildSketch(Plane.ZY.offset(-8)):
        with BuildLine():
            Line((10.171572875, -3.5), (10.171572875, 0))
            Line((10.171572875, 0), (15.671572875, 0))
            Line((15.671572875, 0), (15.671572875, -3.5))
            ThreePointArc((15.671572875, -3.5), (12.921572875, -6.25), (10.171572875, -3.5))
        make_face()
        with Locations((12.921572875, -3.5)):
            Circle(SKICA20_R, mode=Mode.SUBTRACT)
        with BuildLine():
            Line((10.171572875, 16), (15.671572875, 16))
            Line((15.671572875, 16), (15.671572875, 19.5))
            ThreePointArc((15.671572875, 19.5), (12.921572875, 22.25), (10.171572875, 19.5))
            Line((10.171572875, 19.5), (10.171572875, 16))
        make_face()
        with Locations((12.921572875, 19.5)):
            Circle(SKICA20_R, mode=Mode.SUBTRACT)
    p_idat_vysunut_m5 = extrude(amount=-P_IDAT_VYSUNUT_M5_DEPTH)

    # Skica21 → Odebrat vysunutím11 (cut)
    with BuildSketch(Plane(origin=(0, 16, 0), x_dir=(1, 0, 0), z_dir=(0, 1, 0))):
        with Locations((16, -1.171572875)):
            Circle(SKICA21_R)
    extrude(amount=-ODEBRAT_VYSUNUT_M11_DEPTH, mode=Mode.SUBTRACT)

    # LinPole1: Přidat vysunutím5 ×2
    with Locations(*[(0, 0, -i * LINPOLE1_PITCH) for i in range(1, LINPOLE1_COUNT)]):
        add(p_idat_vysunut_m5)

    # Skica22 → Odebrat vysunutím12 (cut)
    with BuildSketch(Plane(origin=(10, 0, 0), x_dir=(0, 0, -1), z_dir=(1, 0, 0))):
        with Locations((-7.230444291, 8.25)):
            Circle(SKICA22_R)
        with Locations((4.769102832, 8.145746213)):
            Circle(SKICA22_R)
    extrude(amount=-ODEBRAT_VYSUNUT_M12_DEPTH, mode=Mode.SUBTRACT)

    # Skica23 → Přidat vysunutím6 (add)
    with BuildSketch(Plane(origin=(0, 16, 0), x_dir=(1, 0, 0), z_dir=(0, 1, 0))):
        Polygon((22, 14.328427125), (18, 11.828427125), (22, 11.828427125), align=None)
        Polygon((22, -14.171572875), (18, -14.171572875), (22, -16.671572875), align=None)
    extrude(amount=-P_IDAT_VYSUNUT_M6_DEPTH)

    # Skica24 → Přidat vysunutím7 (add)
    with BuildSketch(Plane.XZ.offset(-16)):
        with Locations((9, 14.921572875)):
            Rectangle(SKICA24_W, SKICA24_H)
    extrude(amount=P_IDAT_VYSUNUT_M7_DEPTH)


solid = part.part
